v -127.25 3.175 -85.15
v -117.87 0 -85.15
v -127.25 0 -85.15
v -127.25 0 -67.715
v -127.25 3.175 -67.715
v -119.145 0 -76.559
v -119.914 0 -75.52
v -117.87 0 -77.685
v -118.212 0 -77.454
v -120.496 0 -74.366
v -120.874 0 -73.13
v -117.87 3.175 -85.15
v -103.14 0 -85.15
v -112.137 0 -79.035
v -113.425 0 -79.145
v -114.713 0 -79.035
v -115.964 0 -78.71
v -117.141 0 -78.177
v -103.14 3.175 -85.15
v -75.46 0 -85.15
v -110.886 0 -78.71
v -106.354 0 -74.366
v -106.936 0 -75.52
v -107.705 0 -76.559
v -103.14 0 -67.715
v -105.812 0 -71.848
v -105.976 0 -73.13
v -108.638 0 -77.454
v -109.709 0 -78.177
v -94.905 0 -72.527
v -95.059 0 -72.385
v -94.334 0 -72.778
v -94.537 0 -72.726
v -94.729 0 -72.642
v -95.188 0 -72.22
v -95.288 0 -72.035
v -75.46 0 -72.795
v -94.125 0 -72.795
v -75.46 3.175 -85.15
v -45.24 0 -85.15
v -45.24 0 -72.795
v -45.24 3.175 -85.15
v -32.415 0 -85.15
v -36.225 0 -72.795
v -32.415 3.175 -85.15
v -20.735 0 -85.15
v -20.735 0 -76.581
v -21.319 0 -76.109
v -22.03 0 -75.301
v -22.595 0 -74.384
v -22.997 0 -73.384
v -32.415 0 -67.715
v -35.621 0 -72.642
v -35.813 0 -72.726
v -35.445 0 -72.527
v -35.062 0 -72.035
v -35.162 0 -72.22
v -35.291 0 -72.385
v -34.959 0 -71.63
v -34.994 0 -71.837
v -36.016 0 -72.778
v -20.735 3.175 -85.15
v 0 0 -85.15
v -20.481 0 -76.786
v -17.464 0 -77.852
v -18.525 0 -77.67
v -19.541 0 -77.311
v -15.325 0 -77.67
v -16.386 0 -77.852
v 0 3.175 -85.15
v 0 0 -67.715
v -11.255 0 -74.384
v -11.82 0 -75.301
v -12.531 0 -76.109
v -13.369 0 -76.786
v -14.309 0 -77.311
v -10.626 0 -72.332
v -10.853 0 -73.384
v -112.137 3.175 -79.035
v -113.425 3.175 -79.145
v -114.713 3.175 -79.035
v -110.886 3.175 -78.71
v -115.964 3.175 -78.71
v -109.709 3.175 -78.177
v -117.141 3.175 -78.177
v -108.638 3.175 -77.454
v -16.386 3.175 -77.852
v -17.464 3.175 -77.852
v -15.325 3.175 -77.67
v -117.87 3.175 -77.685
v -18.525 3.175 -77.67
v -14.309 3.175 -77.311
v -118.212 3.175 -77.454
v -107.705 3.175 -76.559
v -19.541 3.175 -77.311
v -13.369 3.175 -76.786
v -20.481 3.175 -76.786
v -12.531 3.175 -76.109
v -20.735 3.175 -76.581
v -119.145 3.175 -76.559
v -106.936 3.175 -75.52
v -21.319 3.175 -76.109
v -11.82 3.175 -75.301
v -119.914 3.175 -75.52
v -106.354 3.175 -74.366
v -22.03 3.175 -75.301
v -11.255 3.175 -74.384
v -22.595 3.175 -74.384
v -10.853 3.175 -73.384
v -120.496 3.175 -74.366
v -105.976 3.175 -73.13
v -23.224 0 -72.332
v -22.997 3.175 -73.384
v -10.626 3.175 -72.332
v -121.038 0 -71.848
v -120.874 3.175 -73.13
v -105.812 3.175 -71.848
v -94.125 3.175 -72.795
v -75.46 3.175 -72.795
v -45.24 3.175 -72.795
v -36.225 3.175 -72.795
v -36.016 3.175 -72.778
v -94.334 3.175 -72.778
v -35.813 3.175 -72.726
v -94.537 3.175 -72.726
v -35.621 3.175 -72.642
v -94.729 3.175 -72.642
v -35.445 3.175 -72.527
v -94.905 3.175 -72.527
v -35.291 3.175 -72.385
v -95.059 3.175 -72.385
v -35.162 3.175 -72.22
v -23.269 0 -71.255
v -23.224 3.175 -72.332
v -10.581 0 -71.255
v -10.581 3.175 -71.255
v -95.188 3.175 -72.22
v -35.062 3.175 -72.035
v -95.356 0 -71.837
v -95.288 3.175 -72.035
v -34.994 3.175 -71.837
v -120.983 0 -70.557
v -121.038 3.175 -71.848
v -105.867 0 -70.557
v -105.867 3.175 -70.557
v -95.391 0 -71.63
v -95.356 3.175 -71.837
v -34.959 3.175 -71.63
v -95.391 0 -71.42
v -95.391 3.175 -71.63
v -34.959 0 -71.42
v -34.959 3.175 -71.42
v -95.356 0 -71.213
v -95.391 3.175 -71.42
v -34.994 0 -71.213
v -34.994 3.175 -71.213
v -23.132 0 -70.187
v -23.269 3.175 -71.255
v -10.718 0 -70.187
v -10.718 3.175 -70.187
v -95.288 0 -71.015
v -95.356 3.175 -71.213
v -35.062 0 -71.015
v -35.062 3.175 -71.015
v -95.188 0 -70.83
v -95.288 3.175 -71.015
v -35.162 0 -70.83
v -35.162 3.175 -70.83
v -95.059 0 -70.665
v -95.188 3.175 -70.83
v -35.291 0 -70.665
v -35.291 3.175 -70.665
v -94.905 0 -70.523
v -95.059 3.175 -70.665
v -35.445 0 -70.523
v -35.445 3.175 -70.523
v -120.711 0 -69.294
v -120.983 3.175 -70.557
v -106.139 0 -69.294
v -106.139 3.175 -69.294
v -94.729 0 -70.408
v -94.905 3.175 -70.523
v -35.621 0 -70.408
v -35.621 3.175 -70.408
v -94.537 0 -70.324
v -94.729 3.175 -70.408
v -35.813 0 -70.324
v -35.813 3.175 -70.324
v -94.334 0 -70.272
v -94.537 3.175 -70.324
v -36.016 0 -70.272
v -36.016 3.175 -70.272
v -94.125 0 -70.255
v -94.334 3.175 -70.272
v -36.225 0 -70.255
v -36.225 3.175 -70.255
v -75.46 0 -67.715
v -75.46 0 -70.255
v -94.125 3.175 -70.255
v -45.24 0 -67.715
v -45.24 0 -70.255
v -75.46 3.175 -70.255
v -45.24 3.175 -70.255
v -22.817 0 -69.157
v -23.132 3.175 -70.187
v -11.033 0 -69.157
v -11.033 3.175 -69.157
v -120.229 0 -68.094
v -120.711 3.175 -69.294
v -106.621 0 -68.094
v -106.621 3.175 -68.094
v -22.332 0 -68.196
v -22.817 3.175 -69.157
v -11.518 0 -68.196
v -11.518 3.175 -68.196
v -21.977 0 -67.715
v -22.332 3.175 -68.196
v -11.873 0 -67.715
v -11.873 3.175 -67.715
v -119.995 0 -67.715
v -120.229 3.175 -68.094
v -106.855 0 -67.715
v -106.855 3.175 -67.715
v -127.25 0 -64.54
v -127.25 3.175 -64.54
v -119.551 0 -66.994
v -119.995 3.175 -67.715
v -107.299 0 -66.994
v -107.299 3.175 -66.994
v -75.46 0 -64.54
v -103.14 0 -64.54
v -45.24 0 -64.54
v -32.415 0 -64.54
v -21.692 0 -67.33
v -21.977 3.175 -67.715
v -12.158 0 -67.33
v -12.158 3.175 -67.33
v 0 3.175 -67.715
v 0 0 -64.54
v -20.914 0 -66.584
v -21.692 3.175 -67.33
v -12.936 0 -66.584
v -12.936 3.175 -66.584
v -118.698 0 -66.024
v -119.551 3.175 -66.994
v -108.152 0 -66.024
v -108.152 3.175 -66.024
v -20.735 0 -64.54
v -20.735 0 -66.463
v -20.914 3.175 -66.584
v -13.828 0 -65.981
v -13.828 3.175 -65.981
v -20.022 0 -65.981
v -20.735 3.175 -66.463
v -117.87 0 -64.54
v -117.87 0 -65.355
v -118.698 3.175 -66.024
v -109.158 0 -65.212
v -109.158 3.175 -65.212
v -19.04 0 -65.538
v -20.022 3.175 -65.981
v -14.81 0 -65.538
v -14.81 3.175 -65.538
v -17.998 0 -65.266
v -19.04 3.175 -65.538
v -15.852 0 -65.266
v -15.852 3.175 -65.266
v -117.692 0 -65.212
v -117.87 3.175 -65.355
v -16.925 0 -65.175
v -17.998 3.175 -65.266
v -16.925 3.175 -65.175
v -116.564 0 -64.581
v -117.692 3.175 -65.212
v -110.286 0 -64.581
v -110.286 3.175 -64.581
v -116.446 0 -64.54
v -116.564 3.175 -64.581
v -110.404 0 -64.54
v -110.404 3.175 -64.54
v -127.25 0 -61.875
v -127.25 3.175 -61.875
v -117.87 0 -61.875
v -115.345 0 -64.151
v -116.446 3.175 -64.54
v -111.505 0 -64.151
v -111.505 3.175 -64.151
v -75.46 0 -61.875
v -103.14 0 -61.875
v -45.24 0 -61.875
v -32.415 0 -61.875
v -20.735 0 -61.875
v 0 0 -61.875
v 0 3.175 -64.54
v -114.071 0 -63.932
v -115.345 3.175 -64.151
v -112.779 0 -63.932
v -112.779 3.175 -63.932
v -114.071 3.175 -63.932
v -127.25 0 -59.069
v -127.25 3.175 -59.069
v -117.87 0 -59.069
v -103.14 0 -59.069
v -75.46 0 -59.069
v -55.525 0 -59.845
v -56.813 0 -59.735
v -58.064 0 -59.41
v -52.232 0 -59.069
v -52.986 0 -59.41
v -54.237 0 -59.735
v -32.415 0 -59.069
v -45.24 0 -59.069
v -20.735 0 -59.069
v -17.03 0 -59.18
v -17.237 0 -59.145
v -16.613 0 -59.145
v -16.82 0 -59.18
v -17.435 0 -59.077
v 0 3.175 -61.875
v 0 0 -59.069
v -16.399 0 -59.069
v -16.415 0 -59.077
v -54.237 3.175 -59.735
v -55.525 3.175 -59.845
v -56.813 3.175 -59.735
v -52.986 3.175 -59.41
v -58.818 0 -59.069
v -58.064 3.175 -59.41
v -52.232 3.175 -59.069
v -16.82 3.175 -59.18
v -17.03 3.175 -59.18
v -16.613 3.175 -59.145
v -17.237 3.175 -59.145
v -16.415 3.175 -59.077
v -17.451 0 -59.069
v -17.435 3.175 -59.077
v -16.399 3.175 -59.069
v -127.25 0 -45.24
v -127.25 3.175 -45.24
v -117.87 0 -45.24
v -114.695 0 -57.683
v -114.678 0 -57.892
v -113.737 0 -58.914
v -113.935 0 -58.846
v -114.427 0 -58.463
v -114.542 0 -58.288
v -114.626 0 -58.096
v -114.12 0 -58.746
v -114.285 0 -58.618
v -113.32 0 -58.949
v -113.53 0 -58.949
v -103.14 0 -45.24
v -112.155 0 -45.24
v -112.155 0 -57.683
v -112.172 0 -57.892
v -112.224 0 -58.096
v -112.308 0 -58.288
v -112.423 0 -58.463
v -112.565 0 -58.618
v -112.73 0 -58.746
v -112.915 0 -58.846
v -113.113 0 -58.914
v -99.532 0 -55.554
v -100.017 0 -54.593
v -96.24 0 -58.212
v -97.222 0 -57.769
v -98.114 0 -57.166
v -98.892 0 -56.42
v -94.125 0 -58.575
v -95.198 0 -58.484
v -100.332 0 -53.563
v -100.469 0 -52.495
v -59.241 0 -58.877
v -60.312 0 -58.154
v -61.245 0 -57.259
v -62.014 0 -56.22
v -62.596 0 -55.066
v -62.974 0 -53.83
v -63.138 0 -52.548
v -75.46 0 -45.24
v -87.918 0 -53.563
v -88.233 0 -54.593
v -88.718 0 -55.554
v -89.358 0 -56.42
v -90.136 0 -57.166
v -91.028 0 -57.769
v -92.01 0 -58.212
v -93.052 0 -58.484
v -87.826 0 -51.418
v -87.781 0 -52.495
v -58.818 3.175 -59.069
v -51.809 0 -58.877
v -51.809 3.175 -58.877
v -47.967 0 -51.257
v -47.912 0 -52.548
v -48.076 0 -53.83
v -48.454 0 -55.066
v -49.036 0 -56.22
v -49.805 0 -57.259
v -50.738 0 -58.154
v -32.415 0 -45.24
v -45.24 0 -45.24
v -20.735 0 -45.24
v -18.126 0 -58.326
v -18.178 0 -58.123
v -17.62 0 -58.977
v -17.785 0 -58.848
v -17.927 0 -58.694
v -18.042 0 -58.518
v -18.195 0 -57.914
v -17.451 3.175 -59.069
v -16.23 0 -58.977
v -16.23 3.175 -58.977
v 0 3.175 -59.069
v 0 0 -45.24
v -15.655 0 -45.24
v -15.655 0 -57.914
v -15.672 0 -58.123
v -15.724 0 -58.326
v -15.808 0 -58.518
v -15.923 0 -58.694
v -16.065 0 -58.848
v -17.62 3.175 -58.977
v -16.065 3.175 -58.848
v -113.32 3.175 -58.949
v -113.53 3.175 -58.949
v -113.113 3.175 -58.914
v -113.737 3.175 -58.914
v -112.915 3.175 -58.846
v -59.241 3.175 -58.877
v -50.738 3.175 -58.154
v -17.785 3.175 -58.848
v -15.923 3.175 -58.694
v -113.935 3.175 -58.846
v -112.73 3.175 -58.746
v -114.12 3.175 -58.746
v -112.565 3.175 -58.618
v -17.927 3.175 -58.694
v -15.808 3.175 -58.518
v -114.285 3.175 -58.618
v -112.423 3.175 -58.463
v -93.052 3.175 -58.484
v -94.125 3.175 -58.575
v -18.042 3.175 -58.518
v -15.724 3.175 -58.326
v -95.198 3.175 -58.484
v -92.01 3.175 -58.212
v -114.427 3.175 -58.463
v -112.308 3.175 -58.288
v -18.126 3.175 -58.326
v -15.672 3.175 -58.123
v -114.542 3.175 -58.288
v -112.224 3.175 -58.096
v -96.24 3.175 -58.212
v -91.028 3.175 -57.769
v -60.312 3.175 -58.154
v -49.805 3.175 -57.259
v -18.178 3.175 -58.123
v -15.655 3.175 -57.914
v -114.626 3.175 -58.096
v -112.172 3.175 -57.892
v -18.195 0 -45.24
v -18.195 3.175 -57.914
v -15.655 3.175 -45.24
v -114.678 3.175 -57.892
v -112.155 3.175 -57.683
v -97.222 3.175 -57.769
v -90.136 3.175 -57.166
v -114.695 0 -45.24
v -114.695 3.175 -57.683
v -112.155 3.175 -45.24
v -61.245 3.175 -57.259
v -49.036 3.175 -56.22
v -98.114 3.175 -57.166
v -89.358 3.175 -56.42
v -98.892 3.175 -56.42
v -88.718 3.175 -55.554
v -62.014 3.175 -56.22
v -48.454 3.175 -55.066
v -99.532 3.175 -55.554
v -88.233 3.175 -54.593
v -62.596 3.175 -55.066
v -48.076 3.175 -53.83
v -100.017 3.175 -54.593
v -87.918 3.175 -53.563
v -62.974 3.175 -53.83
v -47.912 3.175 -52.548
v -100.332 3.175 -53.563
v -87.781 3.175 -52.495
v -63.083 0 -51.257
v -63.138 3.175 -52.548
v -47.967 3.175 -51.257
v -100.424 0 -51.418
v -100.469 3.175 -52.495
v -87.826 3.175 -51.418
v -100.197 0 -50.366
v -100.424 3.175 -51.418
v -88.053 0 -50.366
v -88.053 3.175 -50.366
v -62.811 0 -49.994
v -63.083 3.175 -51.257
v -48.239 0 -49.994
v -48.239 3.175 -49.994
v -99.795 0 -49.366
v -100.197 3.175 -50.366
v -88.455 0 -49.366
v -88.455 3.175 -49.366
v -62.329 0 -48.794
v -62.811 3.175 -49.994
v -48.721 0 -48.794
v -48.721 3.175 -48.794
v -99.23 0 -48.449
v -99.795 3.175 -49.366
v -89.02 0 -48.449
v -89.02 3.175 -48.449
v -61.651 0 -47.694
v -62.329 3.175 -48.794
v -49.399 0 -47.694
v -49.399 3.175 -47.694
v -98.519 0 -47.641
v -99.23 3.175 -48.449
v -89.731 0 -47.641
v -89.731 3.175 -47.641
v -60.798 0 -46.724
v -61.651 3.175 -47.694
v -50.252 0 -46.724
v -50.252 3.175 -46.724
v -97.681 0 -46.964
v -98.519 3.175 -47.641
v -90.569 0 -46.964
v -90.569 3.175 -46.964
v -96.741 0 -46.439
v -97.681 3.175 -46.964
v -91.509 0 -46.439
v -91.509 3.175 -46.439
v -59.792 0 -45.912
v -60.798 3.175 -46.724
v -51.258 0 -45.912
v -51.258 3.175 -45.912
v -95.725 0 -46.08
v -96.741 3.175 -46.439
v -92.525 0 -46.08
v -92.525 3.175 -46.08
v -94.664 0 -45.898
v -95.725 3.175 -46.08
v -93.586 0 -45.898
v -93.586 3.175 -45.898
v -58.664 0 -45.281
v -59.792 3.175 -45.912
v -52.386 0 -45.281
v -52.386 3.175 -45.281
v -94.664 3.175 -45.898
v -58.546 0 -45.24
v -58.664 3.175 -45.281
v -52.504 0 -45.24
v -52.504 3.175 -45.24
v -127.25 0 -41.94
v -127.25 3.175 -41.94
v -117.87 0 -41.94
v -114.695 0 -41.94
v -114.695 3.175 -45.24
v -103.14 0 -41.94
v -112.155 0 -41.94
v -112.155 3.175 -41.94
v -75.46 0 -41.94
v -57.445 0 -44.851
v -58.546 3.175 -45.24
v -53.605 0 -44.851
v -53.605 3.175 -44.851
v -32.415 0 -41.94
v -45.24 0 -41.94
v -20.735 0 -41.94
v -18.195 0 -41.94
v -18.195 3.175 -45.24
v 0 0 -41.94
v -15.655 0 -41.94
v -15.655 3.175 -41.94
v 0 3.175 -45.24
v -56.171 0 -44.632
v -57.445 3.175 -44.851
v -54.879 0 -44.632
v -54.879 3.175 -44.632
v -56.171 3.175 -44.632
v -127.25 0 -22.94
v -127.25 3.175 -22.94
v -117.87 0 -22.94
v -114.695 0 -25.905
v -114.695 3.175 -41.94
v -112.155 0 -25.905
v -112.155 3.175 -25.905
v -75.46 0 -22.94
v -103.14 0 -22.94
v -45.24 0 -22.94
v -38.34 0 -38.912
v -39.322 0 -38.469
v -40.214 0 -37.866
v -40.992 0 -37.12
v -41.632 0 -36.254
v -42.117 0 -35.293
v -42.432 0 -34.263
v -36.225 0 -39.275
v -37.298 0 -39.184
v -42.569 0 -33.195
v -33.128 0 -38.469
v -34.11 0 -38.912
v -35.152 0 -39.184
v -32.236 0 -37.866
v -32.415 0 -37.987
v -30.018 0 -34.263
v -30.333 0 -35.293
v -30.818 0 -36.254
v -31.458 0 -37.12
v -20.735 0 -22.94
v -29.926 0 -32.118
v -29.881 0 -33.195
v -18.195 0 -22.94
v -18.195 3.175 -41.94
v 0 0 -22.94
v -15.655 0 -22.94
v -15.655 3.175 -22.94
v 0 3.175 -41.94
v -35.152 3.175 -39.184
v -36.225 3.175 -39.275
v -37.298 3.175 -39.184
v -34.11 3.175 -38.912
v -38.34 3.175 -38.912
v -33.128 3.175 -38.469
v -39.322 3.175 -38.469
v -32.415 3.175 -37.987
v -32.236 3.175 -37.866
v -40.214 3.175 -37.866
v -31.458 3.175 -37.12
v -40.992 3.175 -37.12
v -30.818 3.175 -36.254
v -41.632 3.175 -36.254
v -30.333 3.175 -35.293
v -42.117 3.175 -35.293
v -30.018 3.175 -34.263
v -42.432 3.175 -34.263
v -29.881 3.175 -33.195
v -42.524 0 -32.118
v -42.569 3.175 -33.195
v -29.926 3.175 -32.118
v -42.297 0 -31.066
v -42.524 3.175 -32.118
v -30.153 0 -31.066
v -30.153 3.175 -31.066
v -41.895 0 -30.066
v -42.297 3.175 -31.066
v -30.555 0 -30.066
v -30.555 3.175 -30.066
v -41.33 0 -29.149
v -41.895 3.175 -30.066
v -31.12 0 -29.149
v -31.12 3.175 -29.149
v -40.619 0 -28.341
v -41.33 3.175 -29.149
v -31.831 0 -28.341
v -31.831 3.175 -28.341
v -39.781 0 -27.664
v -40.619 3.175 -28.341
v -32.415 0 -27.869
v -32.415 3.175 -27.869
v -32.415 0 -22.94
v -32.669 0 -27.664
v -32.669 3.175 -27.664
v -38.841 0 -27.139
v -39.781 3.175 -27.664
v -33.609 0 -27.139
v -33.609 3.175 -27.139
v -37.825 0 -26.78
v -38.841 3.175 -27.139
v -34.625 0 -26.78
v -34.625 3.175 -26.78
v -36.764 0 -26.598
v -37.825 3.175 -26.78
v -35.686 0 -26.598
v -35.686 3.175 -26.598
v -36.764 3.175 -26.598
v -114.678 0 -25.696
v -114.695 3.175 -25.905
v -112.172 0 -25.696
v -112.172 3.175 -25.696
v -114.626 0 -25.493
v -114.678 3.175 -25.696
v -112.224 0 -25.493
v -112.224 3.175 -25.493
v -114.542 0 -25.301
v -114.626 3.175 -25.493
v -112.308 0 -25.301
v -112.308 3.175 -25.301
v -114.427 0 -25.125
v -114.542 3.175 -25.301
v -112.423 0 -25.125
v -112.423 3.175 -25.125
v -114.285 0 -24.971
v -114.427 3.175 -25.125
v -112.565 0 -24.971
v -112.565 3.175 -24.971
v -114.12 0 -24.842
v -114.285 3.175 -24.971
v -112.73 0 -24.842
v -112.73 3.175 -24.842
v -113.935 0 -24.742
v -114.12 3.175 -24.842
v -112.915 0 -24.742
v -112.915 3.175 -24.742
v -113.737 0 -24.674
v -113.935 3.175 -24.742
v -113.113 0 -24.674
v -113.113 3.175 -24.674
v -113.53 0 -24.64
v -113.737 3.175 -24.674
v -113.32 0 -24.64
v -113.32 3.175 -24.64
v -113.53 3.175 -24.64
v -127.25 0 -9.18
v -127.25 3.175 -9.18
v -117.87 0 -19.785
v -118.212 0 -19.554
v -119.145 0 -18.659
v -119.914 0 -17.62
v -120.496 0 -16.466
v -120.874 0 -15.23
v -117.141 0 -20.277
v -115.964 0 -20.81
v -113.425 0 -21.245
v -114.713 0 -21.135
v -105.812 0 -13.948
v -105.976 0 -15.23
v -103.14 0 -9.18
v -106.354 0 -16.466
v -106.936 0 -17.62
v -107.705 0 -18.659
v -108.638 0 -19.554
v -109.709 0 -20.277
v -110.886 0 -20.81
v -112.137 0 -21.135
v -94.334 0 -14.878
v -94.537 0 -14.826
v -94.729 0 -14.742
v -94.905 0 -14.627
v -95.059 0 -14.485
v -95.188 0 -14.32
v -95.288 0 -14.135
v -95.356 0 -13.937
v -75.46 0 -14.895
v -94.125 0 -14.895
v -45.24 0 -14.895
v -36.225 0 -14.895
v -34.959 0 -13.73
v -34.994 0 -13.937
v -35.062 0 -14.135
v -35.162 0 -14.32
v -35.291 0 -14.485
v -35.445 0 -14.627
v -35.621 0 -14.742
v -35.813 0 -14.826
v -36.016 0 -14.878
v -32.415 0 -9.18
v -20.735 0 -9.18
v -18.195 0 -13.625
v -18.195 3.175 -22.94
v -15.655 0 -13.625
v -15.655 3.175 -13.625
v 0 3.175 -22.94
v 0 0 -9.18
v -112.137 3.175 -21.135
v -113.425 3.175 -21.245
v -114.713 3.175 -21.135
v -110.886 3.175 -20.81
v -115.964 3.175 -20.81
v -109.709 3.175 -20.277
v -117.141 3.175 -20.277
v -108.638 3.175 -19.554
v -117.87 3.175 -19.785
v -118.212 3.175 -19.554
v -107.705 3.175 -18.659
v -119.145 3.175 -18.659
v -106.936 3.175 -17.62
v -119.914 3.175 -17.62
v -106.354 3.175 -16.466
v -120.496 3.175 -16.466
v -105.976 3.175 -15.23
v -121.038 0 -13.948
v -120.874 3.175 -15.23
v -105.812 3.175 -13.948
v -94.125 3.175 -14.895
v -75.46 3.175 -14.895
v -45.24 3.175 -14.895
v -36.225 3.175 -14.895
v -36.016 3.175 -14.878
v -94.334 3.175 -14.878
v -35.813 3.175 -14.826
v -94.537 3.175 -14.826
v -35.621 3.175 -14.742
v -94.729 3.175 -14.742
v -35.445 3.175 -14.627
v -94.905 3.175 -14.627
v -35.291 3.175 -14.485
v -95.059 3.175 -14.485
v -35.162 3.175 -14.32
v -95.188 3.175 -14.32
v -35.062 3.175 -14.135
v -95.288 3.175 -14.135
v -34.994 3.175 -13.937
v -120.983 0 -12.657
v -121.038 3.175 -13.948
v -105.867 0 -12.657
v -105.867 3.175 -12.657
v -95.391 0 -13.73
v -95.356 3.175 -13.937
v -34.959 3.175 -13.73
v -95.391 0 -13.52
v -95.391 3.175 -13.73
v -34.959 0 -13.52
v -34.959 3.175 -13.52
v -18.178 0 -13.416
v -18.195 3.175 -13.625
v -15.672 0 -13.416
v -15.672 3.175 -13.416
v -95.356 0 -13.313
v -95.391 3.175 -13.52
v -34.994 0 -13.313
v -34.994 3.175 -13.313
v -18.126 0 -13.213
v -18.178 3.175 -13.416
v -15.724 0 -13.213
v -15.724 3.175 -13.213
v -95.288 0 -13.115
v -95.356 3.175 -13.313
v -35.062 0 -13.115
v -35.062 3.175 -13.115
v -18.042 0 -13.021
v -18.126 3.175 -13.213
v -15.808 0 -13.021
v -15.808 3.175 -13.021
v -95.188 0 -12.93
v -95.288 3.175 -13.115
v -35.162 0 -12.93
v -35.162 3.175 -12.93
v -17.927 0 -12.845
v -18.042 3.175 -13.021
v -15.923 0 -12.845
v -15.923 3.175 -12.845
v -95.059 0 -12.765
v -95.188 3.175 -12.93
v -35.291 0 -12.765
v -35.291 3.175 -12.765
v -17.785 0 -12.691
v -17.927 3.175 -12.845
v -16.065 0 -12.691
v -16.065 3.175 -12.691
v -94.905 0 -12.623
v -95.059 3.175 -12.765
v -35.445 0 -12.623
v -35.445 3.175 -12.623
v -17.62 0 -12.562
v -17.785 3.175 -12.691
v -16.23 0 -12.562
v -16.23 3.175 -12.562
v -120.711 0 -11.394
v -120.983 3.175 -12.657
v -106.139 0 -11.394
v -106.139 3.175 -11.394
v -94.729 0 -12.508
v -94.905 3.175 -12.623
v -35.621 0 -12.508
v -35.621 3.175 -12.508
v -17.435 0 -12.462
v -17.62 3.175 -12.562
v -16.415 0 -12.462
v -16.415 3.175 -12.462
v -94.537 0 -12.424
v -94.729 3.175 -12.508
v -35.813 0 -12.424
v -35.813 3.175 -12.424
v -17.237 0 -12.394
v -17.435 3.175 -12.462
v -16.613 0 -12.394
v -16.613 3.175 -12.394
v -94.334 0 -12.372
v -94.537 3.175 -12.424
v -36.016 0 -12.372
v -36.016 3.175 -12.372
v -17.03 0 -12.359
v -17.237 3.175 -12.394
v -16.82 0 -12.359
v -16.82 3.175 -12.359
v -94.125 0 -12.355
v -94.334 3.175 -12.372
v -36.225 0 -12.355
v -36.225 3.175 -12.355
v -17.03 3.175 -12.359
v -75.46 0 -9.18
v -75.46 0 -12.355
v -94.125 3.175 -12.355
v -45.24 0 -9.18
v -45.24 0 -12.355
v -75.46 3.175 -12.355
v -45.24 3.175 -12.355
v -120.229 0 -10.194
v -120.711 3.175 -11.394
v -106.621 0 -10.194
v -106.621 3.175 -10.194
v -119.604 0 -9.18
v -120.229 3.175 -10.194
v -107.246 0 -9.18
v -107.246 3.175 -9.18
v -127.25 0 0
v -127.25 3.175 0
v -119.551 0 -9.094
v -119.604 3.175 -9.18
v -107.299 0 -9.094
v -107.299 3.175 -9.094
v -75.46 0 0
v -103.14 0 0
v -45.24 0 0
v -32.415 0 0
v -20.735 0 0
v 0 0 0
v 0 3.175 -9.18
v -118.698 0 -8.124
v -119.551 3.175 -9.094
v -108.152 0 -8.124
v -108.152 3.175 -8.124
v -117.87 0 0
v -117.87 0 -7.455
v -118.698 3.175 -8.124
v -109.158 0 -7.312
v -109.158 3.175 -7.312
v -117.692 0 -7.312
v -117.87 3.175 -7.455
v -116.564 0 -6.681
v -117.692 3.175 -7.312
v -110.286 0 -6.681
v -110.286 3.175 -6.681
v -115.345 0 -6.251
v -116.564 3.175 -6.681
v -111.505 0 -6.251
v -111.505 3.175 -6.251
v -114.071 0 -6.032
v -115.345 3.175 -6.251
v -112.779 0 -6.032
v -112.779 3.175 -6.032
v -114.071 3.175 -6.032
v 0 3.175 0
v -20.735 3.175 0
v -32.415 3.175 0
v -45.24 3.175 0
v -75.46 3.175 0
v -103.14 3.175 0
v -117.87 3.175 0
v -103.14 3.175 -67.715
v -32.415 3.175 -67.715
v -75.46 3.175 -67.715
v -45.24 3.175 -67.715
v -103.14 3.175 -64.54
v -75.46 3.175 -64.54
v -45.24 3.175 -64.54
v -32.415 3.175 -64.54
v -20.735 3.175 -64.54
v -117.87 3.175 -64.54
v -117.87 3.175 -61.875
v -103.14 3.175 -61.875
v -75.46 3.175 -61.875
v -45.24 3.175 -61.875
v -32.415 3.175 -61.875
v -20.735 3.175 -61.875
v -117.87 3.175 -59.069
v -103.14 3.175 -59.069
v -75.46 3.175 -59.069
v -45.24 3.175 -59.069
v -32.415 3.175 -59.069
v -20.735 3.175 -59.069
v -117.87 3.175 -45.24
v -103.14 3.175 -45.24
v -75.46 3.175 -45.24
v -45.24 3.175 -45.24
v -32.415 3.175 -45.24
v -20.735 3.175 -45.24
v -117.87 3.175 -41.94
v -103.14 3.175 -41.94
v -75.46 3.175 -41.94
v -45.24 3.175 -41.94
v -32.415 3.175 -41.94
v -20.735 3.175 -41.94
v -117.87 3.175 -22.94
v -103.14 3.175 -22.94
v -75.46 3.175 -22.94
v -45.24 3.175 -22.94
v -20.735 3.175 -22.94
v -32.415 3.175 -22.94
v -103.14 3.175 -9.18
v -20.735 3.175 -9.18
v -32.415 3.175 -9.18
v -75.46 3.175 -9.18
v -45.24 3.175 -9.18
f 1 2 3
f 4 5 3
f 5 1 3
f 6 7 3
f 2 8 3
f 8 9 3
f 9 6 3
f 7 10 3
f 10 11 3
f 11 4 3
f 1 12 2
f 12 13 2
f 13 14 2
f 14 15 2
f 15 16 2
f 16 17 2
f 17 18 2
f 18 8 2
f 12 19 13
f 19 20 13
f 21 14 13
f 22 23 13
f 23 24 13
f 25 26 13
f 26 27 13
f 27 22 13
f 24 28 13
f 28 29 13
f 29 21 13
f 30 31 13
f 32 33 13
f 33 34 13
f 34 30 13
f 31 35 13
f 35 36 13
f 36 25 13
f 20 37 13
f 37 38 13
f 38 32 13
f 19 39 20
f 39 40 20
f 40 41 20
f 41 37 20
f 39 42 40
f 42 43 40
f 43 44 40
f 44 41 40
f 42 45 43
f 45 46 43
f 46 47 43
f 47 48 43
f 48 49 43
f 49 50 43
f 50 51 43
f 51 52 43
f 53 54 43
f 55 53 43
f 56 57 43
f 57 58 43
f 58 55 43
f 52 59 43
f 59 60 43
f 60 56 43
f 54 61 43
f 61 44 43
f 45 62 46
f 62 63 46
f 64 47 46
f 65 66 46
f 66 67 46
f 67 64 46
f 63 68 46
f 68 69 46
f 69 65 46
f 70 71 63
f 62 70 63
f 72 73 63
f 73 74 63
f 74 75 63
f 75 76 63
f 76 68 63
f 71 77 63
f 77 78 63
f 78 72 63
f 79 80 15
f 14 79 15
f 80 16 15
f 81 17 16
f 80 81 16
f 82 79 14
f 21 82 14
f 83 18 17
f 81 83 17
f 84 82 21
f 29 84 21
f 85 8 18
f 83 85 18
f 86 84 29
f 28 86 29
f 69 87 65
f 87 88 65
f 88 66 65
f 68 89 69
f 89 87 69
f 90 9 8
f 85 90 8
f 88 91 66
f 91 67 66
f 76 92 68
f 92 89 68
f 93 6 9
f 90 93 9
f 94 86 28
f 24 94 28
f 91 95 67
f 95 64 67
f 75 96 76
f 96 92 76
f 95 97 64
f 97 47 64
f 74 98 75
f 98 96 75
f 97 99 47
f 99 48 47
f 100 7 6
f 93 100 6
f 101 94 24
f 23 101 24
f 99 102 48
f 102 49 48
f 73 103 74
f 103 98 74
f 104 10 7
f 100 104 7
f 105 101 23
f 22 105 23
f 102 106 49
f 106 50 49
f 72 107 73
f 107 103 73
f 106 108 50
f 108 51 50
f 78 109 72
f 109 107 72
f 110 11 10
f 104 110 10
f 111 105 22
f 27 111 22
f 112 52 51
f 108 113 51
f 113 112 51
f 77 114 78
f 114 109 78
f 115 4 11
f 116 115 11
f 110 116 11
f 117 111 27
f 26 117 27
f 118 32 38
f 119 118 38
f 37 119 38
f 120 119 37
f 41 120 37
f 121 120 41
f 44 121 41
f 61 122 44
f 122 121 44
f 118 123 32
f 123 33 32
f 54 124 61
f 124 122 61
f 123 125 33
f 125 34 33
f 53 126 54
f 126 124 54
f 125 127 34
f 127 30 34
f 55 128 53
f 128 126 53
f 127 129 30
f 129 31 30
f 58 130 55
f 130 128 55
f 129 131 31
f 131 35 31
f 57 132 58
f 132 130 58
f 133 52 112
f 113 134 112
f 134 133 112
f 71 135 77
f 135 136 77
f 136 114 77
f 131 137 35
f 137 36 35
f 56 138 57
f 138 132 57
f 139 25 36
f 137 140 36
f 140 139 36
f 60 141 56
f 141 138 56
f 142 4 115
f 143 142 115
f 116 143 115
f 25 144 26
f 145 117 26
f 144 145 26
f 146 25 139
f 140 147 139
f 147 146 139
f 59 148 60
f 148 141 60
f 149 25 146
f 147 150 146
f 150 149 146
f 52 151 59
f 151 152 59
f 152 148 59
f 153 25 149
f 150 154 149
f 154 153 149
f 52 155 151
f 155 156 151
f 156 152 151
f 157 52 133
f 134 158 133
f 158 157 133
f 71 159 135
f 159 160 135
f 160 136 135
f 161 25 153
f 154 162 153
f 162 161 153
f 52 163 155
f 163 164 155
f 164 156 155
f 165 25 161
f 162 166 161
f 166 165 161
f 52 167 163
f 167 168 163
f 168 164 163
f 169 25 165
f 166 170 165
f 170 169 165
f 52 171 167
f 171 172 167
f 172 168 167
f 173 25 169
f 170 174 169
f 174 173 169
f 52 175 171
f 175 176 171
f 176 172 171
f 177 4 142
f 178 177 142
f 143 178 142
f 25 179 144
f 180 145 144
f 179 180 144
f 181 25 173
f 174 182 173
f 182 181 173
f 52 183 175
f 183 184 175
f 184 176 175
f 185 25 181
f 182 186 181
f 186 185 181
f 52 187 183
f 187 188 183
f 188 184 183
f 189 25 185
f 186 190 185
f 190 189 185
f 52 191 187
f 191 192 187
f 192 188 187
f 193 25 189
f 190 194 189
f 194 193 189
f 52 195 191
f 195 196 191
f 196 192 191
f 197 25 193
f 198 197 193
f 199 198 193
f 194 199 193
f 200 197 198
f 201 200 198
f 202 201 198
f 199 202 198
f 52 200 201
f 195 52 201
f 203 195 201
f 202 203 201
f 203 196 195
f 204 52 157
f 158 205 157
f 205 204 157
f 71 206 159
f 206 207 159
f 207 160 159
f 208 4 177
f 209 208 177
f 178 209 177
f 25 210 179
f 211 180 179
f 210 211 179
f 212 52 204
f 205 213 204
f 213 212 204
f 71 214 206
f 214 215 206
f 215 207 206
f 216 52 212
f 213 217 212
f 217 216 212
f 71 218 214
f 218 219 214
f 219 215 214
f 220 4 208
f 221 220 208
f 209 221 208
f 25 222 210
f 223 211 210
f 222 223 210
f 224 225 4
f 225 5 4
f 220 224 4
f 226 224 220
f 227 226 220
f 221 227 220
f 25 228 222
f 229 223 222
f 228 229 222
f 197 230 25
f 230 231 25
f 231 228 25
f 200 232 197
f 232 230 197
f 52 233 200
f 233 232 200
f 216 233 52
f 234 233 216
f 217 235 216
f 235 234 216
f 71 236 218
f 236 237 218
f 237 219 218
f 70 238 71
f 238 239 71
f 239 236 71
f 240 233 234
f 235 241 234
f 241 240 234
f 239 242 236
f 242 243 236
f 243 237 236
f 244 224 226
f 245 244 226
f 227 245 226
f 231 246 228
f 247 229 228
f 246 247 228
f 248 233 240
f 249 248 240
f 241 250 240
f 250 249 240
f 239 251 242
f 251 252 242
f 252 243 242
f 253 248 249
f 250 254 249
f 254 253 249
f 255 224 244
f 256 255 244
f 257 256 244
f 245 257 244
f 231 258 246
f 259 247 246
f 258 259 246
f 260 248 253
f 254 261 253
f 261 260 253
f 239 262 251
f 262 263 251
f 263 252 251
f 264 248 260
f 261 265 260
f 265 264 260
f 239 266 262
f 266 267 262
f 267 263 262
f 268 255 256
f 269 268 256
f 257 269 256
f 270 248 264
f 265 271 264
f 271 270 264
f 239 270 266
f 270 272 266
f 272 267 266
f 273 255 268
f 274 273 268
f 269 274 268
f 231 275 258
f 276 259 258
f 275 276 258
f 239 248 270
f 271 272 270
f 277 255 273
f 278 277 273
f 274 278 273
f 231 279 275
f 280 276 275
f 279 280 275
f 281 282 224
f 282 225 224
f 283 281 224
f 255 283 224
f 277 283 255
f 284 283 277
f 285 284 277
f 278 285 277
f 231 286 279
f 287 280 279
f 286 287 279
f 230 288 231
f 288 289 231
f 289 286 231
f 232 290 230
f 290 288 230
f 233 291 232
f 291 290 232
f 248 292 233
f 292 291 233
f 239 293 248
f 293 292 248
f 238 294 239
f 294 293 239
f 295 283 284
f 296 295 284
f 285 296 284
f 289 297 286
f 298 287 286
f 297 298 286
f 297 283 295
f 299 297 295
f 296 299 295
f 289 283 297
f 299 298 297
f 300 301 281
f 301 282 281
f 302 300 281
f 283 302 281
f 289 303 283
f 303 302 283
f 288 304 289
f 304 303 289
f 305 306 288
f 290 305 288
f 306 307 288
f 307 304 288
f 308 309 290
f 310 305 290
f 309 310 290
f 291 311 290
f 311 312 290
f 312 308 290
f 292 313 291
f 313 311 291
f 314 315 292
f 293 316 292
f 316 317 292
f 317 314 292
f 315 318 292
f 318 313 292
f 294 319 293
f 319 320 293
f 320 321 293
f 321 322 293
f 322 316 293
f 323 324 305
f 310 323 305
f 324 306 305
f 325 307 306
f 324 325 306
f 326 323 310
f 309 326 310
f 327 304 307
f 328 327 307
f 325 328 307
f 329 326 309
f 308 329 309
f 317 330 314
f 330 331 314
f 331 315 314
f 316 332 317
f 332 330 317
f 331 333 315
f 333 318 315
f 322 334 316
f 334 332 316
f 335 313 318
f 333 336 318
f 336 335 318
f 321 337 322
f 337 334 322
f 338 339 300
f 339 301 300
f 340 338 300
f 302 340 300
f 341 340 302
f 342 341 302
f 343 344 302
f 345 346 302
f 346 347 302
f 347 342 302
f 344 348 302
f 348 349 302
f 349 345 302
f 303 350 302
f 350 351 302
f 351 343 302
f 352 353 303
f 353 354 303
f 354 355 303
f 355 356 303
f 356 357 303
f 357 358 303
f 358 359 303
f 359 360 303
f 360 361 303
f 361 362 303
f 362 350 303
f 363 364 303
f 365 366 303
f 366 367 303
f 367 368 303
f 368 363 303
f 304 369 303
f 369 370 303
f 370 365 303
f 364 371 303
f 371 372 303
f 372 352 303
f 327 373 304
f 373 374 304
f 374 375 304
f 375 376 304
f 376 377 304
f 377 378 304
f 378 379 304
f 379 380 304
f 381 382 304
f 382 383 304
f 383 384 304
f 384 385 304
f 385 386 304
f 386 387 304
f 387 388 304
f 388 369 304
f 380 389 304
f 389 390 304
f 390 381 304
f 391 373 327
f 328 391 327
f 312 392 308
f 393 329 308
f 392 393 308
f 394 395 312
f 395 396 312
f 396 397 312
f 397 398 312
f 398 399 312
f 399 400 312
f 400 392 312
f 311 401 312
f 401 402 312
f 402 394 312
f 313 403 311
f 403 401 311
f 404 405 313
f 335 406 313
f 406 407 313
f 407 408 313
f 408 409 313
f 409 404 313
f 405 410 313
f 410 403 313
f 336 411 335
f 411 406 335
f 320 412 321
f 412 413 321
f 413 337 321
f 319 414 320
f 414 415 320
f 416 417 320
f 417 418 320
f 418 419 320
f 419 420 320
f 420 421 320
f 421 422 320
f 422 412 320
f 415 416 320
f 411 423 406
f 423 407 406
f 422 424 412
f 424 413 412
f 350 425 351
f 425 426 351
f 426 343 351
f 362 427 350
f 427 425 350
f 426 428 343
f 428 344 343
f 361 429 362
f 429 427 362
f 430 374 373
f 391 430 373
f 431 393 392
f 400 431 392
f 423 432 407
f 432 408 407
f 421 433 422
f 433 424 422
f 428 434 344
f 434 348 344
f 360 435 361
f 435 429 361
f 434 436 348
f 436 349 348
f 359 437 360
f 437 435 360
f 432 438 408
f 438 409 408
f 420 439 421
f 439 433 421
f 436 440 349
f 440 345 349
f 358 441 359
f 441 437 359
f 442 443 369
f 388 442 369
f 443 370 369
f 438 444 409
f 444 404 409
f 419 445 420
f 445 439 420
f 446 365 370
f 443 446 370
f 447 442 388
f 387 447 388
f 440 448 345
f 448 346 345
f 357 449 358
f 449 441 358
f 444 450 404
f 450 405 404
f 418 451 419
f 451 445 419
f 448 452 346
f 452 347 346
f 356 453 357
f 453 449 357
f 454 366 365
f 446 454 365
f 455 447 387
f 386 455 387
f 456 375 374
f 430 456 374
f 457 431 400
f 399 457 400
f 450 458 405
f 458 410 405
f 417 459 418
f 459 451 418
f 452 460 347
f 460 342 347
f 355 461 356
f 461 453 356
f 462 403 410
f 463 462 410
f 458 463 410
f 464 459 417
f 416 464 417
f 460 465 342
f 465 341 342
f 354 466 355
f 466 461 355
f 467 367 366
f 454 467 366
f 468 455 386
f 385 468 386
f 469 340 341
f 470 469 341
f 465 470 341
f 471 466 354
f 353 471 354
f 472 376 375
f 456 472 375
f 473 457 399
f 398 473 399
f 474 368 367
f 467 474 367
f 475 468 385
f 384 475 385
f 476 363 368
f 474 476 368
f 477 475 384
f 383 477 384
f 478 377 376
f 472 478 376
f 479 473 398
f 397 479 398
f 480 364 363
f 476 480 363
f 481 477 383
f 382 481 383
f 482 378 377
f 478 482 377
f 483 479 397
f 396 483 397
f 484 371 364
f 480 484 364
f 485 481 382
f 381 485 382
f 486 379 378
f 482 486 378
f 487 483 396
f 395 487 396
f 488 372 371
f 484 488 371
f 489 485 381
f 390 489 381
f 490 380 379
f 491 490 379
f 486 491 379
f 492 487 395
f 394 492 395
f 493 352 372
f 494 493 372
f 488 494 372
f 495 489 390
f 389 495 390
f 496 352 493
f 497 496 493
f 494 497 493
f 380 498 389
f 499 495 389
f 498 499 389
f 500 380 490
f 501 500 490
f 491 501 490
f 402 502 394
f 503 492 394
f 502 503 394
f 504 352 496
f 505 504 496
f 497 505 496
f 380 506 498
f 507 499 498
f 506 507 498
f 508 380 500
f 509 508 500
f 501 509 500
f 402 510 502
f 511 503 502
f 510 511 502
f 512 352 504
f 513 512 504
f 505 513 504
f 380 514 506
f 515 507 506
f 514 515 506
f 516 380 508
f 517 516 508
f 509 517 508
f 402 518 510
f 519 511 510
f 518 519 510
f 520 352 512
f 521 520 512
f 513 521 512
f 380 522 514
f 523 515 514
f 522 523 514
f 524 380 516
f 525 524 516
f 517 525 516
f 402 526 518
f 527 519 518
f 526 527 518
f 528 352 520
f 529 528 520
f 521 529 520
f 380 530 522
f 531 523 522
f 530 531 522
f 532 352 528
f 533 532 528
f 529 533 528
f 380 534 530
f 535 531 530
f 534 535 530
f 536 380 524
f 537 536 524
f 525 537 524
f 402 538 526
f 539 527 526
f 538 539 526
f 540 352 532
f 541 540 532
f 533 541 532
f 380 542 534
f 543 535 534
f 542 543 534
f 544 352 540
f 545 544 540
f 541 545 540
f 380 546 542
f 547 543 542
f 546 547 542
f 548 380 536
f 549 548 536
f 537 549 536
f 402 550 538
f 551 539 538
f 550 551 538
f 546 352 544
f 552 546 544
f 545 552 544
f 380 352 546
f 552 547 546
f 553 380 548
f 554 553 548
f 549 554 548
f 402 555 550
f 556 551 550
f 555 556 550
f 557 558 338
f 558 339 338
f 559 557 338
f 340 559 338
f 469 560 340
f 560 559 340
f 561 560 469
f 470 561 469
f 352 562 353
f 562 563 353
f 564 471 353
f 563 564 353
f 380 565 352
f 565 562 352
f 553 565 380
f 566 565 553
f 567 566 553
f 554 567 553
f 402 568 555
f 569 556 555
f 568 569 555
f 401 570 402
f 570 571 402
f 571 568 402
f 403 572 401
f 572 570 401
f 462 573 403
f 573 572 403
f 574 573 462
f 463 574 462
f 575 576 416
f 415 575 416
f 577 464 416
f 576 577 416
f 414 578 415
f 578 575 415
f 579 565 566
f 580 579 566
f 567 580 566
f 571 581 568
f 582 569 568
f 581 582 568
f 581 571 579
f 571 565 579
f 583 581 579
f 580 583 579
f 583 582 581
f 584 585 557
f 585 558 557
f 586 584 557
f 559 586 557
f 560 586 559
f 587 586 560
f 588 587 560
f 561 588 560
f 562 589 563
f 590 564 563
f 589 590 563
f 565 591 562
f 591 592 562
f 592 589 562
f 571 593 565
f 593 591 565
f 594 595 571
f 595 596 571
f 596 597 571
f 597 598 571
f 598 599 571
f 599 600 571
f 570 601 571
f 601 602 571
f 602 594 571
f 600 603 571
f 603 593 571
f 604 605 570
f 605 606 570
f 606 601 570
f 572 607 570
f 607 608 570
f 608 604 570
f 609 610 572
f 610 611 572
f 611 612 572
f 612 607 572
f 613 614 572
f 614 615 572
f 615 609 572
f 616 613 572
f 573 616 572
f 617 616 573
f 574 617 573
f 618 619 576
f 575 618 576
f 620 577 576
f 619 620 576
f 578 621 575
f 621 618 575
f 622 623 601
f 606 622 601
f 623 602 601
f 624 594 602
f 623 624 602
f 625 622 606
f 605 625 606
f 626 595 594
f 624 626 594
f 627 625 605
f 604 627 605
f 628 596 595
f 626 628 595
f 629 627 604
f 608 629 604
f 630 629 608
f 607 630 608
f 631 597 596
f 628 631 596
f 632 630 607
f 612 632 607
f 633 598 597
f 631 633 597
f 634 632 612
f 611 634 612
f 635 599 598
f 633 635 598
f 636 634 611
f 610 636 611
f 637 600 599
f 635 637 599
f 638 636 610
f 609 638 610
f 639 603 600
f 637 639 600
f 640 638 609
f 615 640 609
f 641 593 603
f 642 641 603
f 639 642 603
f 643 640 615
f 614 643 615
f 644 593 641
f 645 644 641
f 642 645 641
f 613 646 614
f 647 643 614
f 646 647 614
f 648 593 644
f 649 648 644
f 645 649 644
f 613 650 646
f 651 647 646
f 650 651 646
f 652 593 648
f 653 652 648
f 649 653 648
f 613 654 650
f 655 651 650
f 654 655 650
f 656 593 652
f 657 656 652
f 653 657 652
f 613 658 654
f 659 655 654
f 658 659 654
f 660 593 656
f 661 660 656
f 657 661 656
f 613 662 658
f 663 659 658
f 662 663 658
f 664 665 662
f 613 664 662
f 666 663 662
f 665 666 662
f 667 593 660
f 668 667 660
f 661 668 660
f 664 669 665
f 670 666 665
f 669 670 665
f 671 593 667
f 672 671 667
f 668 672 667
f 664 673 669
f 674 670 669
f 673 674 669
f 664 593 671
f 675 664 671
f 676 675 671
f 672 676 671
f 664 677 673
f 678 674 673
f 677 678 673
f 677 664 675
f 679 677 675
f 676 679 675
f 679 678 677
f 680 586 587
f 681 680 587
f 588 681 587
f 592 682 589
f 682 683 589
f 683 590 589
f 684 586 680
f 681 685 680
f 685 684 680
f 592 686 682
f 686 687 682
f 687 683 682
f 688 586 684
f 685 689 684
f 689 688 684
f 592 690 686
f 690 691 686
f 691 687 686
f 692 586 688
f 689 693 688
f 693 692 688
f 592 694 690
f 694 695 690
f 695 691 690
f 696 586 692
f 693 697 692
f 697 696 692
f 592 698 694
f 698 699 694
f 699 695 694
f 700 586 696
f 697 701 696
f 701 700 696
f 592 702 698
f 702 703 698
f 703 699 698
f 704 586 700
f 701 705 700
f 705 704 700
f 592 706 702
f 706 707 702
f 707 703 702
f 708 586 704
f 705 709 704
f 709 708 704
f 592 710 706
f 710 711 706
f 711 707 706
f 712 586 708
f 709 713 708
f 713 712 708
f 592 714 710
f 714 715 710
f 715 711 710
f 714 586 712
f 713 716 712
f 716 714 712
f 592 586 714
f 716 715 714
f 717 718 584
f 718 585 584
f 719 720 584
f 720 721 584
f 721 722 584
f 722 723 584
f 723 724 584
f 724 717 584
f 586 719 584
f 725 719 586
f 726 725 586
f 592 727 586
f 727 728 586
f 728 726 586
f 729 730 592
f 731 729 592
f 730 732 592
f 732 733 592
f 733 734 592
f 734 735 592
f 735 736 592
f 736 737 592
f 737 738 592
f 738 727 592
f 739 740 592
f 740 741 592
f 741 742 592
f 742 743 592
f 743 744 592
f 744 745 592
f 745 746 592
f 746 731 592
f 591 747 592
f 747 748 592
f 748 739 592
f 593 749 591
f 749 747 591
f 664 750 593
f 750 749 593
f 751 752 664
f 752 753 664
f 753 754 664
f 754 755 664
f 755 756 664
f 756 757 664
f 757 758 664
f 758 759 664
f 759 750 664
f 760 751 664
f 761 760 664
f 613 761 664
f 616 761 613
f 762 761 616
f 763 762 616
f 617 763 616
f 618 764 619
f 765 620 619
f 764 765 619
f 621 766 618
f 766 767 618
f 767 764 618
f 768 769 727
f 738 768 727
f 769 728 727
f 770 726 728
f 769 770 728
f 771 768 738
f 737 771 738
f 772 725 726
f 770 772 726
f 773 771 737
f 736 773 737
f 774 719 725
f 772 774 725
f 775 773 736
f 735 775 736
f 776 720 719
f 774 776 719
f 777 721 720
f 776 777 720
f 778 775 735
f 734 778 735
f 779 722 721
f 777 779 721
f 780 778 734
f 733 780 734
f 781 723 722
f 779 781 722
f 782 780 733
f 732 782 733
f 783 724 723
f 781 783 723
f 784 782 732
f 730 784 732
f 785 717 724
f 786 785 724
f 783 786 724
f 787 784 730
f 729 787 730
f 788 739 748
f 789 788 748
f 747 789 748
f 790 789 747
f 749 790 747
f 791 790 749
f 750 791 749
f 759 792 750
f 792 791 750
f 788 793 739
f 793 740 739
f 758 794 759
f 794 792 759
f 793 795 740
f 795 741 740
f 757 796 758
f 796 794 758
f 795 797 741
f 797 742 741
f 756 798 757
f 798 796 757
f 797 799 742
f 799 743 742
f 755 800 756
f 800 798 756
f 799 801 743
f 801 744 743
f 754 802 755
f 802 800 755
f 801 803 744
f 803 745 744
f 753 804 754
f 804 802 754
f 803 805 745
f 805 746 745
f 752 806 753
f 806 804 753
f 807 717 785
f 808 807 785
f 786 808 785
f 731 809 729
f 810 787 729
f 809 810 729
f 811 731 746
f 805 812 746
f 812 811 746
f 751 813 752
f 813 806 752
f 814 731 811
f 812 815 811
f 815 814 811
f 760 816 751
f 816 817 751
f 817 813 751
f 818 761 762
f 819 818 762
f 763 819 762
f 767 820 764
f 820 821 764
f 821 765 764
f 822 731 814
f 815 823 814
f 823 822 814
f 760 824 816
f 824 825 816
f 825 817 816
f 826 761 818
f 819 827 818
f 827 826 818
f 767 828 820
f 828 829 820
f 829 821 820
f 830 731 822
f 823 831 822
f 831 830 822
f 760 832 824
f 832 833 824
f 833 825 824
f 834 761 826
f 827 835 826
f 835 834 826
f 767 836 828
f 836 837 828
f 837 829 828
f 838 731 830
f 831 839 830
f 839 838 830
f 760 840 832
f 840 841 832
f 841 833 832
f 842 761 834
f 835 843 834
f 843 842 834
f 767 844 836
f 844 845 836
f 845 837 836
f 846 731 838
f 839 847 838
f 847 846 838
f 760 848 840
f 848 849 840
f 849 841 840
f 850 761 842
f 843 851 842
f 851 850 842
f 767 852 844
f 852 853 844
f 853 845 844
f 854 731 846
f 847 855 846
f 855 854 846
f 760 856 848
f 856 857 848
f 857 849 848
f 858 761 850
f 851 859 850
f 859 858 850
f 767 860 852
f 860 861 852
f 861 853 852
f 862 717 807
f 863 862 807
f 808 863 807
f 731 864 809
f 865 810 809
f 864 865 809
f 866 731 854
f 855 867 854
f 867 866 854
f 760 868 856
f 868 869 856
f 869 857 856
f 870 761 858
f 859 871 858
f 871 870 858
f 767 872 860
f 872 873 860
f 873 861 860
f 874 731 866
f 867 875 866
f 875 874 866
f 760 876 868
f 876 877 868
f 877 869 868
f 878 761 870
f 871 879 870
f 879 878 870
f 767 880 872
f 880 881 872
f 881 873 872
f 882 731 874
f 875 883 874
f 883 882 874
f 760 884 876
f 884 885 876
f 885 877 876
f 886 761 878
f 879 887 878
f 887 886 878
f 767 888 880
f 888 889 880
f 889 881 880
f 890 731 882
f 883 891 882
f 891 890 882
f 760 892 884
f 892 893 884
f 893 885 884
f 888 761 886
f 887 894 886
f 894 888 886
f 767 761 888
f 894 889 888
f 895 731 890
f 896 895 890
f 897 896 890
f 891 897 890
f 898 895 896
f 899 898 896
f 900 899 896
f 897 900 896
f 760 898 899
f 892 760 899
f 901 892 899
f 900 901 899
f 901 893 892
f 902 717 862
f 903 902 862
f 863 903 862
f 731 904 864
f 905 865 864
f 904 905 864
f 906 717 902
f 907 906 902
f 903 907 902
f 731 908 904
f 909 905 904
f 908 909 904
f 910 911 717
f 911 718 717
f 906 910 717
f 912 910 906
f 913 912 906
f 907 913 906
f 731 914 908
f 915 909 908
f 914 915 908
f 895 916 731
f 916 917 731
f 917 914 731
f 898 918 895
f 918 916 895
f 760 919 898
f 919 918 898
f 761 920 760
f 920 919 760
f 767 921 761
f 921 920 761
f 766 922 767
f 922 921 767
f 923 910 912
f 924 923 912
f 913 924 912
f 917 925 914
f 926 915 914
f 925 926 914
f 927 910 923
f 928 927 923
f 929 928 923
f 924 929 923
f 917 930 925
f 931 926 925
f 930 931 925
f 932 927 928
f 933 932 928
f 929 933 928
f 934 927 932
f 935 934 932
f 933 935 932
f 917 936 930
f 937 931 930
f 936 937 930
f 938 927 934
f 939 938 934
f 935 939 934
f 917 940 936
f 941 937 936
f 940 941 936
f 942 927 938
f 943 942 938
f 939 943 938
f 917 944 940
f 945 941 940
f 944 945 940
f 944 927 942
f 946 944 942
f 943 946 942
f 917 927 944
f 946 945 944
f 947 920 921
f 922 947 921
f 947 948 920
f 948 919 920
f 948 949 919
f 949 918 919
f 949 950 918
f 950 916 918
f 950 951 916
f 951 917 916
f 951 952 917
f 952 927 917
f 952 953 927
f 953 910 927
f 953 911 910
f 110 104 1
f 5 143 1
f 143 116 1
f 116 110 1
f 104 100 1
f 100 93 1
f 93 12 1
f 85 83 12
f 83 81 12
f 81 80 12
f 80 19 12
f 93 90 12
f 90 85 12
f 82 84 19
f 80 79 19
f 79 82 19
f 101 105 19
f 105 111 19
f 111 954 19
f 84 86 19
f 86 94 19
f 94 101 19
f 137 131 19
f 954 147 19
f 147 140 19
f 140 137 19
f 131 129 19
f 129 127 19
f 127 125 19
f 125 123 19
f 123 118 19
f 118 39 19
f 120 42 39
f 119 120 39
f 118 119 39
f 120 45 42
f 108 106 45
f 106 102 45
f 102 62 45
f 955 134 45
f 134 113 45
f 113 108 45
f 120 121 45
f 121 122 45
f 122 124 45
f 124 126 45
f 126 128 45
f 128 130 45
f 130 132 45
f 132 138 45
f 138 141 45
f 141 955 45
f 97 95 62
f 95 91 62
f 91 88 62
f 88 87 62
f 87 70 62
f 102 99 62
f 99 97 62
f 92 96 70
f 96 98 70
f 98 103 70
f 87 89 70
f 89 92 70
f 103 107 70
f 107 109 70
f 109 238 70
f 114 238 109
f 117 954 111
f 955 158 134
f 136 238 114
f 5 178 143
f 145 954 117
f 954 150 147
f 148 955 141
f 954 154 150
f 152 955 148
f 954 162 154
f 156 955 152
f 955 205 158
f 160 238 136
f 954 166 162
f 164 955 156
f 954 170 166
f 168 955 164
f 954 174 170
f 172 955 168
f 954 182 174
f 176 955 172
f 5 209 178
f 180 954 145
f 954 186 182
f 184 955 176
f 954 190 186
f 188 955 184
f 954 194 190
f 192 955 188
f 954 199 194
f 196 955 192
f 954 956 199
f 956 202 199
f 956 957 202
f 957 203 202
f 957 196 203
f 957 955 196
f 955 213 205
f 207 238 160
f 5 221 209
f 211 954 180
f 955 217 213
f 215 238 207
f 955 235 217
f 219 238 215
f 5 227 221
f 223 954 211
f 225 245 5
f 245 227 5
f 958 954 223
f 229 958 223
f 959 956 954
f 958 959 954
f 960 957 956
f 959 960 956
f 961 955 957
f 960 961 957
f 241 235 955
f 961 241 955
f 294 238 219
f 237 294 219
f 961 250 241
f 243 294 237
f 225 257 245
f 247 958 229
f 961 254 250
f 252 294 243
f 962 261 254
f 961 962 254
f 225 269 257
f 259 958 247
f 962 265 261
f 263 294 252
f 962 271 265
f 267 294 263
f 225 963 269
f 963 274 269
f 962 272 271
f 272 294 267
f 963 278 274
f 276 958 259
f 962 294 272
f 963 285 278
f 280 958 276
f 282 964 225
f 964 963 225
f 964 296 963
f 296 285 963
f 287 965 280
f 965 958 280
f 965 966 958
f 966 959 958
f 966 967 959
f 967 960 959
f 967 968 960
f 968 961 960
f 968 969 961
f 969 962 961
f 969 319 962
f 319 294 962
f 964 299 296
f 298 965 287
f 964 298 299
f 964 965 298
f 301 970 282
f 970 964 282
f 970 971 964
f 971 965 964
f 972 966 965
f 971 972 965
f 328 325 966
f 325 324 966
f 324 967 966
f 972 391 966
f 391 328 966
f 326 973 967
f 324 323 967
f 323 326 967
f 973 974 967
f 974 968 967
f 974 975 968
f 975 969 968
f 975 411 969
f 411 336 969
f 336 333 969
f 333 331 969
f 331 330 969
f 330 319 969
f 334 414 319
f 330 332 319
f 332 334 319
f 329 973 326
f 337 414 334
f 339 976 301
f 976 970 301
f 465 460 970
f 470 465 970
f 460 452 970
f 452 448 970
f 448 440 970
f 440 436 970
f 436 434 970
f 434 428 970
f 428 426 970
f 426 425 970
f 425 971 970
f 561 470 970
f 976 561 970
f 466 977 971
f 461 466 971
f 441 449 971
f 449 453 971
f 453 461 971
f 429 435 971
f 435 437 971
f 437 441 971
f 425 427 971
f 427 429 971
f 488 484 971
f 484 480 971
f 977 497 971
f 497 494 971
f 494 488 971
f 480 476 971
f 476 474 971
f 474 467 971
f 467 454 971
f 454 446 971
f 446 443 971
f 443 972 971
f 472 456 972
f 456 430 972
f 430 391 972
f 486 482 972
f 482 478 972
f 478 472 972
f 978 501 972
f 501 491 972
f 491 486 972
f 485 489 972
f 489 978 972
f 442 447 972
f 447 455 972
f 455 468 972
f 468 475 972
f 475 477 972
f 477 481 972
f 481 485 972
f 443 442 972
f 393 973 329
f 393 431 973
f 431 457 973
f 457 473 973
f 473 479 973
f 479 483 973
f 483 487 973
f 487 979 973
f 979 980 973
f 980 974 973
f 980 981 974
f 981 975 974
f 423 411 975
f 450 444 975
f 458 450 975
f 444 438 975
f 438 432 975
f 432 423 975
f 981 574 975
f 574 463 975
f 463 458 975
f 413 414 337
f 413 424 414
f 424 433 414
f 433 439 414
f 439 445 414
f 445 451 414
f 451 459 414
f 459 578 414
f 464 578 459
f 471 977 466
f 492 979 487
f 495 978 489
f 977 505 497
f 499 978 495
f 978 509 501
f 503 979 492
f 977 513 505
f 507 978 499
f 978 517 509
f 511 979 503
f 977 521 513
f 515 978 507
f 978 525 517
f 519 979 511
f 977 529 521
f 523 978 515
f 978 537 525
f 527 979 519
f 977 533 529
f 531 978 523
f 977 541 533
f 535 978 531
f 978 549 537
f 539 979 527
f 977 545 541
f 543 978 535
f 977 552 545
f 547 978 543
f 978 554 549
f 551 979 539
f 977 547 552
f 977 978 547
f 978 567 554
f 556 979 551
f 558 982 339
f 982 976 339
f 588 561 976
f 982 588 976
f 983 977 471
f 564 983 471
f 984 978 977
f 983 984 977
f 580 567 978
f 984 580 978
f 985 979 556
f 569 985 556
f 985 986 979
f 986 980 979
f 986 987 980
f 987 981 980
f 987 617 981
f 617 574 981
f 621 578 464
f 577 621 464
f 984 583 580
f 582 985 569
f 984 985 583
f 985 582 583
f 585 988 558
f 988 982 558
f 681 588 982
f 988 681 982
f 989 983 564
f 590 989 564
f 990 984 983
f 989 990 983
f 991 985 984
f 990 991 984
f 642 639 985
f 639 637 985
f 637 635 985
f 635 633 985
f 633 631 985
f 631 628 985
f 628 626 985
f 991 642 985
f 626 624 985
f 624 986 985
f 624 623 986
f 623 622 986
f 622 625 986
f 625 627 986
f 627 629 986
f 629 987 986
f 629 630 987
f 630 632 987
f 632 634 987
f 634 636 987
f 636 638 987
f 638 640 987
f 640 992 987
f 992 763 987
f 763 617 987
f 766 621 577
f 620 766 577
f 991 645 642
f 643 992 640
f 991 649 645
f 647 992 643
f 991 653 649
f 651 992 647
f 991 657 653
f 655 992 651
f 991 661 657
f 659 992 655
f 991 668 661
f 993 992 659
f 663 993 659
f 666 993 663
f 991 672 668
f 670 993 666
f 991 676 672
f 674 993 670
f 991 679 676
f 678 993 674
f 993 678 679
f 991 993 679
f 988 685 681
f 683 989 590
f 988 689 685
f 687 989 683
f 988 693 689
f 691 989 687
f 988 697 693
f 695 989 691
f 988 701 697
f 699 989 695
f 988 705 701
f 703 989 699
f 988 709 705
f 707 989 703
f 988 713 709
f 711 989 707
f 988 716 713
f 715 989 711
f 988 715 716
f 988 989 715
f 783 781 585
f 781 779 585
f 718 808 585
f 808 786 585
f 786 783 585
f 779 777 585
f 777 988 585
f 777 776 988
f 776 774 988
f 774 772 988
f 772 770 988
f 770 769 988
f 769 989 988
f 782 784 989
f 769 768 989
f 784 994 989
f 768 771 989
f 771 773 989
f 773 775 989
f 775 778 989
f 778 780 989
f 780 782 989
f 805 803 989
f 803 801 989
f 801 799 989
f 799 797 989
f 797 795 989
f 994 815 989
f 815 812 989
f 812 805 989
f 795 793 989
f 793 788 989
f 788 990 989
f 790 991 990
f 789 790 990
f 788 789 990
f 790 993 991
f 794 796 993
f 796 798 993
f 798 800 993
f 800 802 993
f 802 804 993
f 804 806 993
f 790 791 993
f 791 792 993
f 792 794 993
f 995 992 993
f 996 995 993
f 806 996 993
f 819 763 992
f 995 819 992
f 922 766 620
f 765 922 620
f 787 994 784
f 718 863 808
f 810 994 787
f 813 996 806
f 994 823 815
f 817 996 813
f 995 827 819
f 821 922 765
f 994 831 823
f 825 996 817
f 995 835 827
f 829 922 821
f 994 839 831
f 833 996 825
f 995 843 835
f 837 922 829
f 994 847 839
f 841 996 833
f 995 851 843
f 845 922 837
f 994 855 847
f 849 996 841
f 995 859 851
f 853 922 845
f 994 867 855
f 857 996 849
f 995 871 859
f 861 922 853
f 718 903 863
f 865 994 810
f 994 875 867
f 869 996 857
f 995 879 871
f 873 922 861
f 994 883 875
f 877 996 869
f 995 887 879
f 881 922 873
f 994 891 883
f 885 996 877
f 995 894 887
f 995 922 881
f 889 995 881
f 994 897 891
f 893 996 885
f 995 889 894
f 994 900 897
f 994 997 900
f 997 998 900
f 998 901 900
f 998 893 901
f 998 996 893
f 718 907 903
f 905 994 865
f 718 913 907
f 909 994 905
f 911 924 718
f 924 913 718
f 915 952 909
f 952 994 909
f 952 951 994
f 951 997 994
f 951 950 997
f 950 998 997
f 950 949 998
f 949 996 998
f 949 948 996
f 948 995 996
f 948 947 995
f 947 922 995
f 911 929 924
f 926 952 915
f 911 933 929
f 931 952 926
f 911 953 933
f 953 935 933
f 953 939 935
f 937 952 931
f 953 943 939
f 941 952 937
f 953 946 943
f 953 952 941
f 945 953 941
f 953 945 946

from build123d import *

# Parameters (mm, degrees)
SKETCH1_W           = 127.25
SKETCH1_H           = 85.15
BOSS_EXTRUDE1_DEPTH = 3.175
SKETCH2_R           = 6.35
CUT_EXTRUDE1_DEPTH  = 4.175
SKETCH3_R           = 7.62
SKETCH3_R_2         = 6.35
CUT_EXTRUDE2_DEPTH  = 4.175
CUT_EXTRUDE3_DEPTH  = 4.175


with BuildPart() as part:
    # Sketch1 → Boss-Extrude1 (new body)
    with BuildSketch(Plane(origin=(0, 0, 0), x_dir=(1, 0, 0), z_dir=(0, 1, 0))):
        with Locations((-63.625, 42.575)):
            Rectangle(SKETCH1_W, SKETCH1_H)
    extrude(amount=BOSS_EXTRUDE1_DEPTH)

    # Sketch2 → Cut-Extrude1 (cut, through all)
    with BuildSketch(Plane(origin=(0, 3.175, 0), x_dir=(1, 0, 0), z_dir=(0, 1, 0))):
        with Locations((-16.925, 71.525)):
            Circle(SKETCH2_R)
    extrude(amount=-CUT_EXTRUDE1_DEPTH, mode=Mode.SUBTRACT)

    # Sketch3 → Cut-Extrude2 (cut, through all)
    with BuildSketch(Plane(origin=(0, 0, 0), x_dir=(-1, 0, 0), z_dir=(0, -1, 0))):
        with Locations((113.425, 71.525)):
            Circle(SKETCH3_R)
        with Locations((113.425, 13.625)):
            Circle(SKETCH3_R)
        with Locations((94.125, 52.225)):
            Circle(SKETCH3_R_2)
        with Locations((55.525, 52.225)):
            Circle(SKETCH3_R)
        with Locations((36.225, 32.925)):
            Circle(SKETCH3_R_2)
    extrude(amount=-CUT_EXTRUDE2_DEPTH, mode=Mode.SUBTRACT)

    # Sketch4 → Cut-Extrude3 (cut, through all)
    with BuildSketch(Plane(origin=(0, 3.175, 0), x_dir=(1, 0, 0), z_dir=(0, 1, 0))):
        with BuildLine():
            Line((-18.195, 13.625), (-18.195, 57.914006297))
            ThreePointArc((-18.195, 57.914006297), (-16.925, 59.184006297), (-15.655, 57.914006297))
            Line((-15.655, 57.914006297), (-15.655, 13.625))
            ThreePointArc((-15.655, 13.625), (-16.925, 12.355), (-18.195, 13.625))
        make_face()
        with BuildLine():
            Line((-36.225, 70.255), (-94.125, 70.255))
            ThreePointArc((-94.125, 70.255), (-95.395, 71.525), (-94.125, 72.795))
            Line((-94.125, 72.795), (-36.225, 72.795))
            ThreePointArc((-36.225, 72.795), (-34.955, 71.525), (-36.225, 70.255))
        make_face()
        with BuildLine():
            Line((-114.695, 25.905281506), (-114.695, 57.683208878))
            ThreePointArc((-114.695, 57.683208878), (-113.425, 58.953208878), (-112.155, 57.683208878))
            Line((-112.155, 57.683208878), (-112.155, 25.905281506))
            ThreePointArc((-112.155, 25.905281506), (-113.425, 24.635281506), (-114.695, 25.905281506))
        make_face()
        with BuildLine():
            Line((-36.225, 14.895), (-94.125, 14.895))
            ThreePointArc((-94.125, 14.895), (-95.395, 13.625), (-94.125, 12.355))
            Line((-94.125, 12.355), (-36.225, 12.355))
            ThreePointArc((-36.225, 12.355), (-34.955, 13.625), (-36.225, 14.895))
        make_face()
    extrude(amount=-CUT_EXTRUDE3_DEPTH, mode=Mode.SUBTRACT)


solid = part.part
